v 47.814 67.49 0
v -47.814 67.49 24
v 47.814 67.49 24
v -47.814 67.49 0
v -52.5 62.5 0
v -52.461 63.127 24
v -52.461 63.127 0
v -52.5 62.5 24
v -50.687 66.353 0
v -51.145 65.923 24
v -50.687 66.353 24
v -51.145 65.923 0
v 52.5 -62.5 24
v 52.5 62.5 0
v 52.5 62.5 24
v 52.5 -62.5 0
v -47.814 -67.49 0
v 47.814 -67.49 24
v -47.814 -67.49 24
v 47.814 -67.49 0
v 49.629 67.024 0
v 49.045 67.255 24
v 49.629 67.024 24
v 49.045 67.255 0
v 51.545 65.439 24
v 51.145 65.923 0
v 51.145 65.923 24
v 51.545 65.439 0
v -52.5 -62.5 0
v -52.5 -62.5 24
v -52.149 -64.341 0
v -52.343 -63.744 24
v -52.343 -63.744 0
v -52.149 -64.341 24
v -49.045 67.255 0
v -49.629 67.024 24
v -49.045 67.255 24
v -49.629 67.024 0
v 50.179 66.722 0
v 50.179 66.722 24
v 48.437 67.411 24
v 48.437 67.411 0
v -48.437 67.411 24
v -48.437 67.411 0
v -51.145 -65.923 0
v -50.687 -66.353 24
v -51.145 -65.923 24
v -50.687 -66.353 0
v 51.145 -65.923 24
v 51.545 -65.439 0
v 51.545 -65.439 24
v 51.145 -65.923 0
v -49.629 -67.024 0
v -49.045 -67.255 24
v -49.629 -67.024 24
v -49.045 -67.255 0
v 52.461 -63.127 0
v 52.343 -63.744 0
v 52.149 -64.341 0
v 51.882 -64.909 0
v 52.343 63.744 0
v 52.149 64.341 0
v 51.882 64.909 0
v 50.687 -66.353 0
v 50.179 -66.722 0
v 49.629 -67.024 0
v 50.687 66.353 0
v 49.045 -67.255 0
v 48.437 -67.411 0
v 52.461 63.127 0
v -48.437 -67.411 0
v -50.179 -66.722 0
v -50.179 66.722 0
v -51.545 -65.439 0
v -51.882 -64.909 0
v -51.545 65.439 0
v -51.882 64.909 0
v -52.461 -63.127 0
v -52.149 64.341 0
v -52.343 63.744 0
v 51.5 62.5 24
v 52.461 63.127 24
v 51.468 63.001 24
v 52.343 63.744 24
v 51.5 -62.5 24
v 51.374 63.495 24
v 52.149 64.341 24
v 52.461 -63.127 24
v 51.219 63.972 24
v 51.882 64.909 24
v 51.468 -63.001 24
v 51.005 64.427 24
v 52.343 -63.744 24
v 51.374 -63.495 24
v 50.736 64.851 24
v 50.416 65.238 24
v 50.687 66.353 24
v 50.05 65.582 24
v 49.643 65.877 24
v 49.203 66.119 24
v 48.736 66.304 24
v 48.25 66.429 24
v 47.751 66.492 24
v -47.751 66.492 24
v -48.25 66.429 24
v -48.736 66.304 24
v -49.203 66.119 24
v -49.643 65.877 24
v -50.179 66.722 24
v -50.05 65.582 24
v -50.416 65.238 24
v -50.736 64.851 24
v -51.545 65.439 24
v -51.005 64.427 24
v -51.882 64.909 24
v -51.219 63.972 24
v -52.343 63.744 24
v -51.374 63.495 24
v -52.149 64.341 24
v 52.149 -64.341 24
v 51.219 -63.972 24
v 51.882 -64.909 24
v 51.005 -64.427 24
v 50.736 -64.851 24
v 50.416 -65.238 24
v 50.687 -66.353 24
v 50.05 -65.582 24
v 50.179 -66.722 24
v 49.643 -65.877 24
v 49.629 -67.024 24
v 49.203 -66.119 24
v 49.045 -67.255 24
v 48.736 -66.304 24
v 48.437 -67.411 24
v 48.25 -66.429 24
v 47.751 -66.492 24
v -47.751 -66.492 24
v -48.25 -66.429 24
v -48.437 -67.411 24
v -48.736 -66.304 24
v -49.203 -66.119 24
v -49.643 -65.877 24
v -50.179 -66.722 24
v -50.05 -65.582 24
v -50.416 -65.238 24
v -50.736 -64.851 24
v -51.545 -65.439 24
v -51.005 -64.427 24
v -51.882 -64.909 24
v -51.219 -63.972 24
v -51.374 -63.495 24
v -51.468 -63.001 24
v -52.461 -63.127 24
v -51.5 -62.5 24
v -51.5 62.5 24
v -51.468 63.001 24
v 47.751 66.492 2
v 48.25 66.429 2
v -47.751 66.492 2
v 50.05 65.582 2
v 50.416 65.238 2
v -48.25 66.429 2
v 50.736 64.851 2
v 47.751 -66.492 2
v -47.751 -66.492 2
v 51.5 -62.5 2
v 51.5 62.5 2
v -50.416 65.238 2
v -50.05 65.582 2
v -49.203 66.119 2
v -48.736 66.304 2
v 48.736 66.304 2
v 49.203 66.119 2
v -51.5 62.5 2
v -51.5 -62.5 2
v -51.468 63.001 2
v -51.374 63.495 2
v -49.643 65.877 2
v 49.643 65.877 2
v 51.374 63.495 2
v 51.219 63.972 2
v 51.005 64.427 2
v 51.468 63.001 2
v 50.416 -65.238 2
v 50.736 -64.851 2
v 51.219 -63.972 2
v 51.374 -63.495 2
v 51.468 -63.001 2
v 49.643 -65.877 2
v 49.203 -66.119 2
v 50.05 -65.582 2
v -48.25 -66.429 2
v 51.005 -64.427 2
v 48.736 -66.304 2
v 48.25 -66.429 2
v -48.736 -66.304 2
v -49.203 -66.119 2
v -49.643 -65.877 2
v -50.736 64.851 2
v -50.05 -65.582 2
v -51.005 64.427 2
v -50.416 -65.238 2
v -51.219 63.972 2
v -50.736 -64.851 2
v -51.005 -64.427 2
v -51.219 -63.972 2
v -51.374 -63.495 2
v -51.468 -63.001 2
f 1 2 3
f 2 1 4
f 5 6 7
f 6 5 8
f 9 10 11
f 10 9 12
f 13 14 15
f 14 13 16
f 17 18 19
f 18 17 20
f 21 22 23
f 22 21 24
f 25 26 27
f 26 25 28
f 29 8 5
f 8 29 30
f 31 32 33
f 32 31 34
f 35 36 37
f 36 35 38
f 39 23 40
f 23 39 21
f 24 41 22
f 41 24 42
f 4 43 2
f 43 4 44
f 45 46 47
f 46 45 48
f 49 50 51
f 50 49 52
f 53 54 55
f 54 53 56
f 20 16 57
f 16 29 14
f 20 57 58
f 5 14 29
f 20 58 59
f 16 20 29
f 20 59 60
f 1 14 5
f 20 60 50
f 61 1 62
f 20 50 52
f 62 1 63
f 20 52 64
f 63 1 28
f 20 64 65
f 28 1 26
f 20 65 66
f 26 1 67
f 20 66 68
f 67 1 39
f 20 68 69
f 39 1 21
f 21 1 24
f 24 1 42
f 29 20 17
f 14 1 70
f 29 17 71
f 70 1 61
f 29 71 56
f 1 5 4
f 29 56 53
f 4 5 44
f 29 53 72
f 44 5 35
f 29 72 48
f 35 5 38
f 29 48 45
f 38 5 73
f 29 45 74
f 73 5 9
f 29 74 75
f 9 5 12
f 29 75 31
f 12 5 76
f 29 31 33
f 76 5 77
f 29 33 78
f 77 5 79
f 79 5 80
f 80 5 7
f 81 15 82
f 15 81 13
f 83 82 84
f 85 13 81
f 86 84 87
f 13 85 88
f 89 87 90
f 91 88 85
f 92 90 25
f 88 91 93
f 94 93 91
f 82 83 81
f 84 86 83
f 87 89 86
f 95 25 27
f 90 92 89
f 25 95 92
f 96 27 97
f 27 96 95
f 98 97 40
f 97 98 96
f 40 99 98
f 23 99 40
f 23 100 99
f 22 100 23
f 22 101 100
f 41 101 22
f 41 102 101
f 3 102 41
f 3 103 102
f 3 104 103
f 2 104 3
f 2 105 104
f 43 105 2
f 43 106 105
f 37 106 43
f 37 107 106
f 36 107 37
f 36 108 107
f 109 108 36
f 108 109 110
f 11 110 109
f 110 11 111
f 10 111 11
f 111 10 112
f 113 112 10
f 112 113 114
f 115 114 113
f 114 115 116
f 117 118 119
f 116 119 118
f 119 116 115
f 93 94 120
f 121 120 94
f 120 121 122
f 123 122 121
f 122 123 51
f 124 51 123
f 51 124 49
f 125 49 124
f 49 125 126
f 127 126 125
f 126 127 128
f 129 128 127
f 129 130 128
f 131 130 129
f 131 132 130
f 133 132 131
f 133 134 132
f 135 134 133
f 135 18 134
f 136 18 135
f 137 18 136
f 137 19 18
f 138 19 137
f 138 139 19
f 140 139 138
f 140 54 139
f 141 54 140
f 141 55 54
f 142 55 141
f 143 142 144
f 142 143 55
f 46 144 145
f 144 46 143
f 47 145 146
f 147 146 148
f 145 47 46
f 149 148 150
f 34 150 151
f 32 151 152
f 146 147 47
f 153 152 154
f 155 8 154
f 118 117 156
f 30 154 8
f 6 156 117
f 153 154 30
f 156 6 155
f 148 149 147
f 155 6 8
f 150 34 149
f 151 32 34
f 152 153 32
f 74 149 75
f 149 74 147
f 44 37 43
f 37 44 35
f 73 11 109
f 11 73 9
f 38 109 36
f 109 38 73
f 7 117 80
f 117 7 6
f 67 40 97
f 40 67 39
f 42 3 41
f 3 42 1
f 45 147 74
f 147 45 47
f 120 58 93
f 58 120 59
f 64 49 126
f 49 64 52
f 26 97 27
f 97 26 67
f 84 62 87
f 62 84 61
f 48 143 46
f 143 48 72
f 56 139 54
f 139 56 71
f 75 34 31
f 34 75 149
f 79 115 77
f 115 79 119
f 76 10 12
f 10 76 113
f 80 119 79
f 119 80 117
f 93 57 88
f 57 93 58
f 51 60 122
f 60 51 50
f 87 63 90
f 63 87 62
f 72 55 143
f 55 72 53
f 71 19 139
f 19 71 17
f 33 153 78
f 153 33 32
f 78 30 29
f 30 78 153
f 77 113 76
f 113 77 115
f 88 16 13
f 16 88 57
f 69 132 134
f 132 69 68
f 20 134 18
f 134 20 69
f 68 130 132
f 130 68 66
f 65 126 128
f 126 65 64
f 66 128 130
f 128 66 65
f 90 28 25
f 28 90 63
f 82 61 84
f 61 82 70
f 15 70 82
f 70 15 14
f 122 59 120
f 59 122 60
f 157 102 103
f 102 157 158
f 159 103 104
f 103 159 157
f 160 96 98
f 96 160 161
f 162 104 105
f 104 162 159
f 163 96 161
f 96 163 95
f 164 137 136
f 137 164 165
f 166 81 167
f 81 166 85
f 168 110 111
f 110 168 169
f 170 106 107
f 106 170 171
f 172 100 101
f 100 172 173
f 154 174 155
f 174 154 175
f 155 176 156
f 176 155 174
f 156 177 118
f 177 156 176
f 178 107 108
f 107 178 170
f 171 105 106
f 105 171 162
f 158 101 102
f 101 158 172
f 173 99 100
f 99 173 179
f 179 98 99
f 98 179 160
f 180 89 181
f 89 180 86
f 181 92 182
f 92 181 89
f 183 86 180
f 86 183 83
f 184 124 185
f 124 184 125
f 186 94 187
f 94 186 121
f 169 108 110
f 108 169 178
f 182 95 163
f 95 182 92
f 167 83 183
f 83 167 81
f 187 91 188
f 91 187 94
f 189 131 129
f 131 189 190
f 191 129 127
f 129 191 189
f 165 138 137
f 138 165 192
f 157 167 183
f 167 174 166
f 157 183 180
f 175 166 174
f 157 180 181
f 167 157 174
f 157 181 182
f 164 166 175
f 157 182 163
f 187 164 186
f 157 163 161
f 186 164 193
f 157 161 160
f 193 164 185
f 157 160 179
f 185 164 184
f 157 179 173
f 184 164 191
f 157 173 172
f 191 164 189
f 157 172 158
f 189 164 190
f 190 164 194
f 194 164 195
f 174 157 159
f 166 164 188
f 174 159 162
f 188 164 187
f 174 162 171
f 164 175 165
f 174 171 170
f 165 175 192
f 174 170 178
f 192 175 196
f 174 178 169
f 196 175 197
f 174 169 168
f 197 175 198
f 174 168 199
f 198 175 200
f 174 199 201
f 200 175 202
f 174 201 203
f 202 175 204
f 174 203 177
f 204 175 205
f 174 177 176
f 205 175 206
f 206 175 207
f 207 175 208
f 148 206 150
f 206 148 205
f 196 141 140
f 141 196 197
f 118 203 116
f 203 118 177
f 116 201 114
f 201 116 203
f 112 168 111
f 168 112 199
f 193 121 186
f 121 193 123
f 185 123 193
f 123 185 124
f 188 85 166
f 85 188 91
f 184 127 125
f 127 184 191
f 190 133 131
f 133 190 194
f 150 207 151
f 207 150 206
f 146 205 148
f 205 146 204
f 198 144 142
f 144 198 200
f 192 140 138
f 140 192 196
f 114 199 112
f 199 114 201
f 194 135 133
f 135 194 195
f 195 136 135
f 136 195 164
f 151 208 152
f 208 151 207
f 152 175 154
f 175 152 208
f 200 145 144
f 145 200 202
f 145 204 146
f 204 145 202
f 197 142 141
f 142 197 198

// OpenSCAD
$fn = 50;


difference() {
	union() {
		hull() {
			translate(v = [-47.5000000000, 62.5000000000, 0]) {
				cylinder(h = 24, r = 5);
			}
			translate(v = [47.5000000000, 62.5000000000, 0]) {
				cylinder(h = 24, r = 5);
			}
			translate(v = [-47.5000000000, -62.5000000000, 0]) {
				cylinder(h = 24, r = 5);
			}
			translate(v = [47.5000000000, -62.5000000000, 0]) {
				cylinder(h = 24, r = 5);
			}
		}
	}
	union() {
		translate(v = [0, 0, 2]) {
			hull() {
				translate(v = [-47.5000000000, 62.5000000000, 0]) {
					cylinder(h = 22, r = 4);
				}
				translate(v = [47.5000000000, 62.5000000000, 0]) {
					cylinder(h = 22, r = 4);
				}
				translate(v = [-47.5000000000, -62.5000000000, 0]) {
					cylinder(h = 22, r = 4);
				}
				translate(v = [47.5000000000, -62.5000000000, 0]) {
					cylinder(h = 22, r = 4);
				}
			}
		}
	}
}
